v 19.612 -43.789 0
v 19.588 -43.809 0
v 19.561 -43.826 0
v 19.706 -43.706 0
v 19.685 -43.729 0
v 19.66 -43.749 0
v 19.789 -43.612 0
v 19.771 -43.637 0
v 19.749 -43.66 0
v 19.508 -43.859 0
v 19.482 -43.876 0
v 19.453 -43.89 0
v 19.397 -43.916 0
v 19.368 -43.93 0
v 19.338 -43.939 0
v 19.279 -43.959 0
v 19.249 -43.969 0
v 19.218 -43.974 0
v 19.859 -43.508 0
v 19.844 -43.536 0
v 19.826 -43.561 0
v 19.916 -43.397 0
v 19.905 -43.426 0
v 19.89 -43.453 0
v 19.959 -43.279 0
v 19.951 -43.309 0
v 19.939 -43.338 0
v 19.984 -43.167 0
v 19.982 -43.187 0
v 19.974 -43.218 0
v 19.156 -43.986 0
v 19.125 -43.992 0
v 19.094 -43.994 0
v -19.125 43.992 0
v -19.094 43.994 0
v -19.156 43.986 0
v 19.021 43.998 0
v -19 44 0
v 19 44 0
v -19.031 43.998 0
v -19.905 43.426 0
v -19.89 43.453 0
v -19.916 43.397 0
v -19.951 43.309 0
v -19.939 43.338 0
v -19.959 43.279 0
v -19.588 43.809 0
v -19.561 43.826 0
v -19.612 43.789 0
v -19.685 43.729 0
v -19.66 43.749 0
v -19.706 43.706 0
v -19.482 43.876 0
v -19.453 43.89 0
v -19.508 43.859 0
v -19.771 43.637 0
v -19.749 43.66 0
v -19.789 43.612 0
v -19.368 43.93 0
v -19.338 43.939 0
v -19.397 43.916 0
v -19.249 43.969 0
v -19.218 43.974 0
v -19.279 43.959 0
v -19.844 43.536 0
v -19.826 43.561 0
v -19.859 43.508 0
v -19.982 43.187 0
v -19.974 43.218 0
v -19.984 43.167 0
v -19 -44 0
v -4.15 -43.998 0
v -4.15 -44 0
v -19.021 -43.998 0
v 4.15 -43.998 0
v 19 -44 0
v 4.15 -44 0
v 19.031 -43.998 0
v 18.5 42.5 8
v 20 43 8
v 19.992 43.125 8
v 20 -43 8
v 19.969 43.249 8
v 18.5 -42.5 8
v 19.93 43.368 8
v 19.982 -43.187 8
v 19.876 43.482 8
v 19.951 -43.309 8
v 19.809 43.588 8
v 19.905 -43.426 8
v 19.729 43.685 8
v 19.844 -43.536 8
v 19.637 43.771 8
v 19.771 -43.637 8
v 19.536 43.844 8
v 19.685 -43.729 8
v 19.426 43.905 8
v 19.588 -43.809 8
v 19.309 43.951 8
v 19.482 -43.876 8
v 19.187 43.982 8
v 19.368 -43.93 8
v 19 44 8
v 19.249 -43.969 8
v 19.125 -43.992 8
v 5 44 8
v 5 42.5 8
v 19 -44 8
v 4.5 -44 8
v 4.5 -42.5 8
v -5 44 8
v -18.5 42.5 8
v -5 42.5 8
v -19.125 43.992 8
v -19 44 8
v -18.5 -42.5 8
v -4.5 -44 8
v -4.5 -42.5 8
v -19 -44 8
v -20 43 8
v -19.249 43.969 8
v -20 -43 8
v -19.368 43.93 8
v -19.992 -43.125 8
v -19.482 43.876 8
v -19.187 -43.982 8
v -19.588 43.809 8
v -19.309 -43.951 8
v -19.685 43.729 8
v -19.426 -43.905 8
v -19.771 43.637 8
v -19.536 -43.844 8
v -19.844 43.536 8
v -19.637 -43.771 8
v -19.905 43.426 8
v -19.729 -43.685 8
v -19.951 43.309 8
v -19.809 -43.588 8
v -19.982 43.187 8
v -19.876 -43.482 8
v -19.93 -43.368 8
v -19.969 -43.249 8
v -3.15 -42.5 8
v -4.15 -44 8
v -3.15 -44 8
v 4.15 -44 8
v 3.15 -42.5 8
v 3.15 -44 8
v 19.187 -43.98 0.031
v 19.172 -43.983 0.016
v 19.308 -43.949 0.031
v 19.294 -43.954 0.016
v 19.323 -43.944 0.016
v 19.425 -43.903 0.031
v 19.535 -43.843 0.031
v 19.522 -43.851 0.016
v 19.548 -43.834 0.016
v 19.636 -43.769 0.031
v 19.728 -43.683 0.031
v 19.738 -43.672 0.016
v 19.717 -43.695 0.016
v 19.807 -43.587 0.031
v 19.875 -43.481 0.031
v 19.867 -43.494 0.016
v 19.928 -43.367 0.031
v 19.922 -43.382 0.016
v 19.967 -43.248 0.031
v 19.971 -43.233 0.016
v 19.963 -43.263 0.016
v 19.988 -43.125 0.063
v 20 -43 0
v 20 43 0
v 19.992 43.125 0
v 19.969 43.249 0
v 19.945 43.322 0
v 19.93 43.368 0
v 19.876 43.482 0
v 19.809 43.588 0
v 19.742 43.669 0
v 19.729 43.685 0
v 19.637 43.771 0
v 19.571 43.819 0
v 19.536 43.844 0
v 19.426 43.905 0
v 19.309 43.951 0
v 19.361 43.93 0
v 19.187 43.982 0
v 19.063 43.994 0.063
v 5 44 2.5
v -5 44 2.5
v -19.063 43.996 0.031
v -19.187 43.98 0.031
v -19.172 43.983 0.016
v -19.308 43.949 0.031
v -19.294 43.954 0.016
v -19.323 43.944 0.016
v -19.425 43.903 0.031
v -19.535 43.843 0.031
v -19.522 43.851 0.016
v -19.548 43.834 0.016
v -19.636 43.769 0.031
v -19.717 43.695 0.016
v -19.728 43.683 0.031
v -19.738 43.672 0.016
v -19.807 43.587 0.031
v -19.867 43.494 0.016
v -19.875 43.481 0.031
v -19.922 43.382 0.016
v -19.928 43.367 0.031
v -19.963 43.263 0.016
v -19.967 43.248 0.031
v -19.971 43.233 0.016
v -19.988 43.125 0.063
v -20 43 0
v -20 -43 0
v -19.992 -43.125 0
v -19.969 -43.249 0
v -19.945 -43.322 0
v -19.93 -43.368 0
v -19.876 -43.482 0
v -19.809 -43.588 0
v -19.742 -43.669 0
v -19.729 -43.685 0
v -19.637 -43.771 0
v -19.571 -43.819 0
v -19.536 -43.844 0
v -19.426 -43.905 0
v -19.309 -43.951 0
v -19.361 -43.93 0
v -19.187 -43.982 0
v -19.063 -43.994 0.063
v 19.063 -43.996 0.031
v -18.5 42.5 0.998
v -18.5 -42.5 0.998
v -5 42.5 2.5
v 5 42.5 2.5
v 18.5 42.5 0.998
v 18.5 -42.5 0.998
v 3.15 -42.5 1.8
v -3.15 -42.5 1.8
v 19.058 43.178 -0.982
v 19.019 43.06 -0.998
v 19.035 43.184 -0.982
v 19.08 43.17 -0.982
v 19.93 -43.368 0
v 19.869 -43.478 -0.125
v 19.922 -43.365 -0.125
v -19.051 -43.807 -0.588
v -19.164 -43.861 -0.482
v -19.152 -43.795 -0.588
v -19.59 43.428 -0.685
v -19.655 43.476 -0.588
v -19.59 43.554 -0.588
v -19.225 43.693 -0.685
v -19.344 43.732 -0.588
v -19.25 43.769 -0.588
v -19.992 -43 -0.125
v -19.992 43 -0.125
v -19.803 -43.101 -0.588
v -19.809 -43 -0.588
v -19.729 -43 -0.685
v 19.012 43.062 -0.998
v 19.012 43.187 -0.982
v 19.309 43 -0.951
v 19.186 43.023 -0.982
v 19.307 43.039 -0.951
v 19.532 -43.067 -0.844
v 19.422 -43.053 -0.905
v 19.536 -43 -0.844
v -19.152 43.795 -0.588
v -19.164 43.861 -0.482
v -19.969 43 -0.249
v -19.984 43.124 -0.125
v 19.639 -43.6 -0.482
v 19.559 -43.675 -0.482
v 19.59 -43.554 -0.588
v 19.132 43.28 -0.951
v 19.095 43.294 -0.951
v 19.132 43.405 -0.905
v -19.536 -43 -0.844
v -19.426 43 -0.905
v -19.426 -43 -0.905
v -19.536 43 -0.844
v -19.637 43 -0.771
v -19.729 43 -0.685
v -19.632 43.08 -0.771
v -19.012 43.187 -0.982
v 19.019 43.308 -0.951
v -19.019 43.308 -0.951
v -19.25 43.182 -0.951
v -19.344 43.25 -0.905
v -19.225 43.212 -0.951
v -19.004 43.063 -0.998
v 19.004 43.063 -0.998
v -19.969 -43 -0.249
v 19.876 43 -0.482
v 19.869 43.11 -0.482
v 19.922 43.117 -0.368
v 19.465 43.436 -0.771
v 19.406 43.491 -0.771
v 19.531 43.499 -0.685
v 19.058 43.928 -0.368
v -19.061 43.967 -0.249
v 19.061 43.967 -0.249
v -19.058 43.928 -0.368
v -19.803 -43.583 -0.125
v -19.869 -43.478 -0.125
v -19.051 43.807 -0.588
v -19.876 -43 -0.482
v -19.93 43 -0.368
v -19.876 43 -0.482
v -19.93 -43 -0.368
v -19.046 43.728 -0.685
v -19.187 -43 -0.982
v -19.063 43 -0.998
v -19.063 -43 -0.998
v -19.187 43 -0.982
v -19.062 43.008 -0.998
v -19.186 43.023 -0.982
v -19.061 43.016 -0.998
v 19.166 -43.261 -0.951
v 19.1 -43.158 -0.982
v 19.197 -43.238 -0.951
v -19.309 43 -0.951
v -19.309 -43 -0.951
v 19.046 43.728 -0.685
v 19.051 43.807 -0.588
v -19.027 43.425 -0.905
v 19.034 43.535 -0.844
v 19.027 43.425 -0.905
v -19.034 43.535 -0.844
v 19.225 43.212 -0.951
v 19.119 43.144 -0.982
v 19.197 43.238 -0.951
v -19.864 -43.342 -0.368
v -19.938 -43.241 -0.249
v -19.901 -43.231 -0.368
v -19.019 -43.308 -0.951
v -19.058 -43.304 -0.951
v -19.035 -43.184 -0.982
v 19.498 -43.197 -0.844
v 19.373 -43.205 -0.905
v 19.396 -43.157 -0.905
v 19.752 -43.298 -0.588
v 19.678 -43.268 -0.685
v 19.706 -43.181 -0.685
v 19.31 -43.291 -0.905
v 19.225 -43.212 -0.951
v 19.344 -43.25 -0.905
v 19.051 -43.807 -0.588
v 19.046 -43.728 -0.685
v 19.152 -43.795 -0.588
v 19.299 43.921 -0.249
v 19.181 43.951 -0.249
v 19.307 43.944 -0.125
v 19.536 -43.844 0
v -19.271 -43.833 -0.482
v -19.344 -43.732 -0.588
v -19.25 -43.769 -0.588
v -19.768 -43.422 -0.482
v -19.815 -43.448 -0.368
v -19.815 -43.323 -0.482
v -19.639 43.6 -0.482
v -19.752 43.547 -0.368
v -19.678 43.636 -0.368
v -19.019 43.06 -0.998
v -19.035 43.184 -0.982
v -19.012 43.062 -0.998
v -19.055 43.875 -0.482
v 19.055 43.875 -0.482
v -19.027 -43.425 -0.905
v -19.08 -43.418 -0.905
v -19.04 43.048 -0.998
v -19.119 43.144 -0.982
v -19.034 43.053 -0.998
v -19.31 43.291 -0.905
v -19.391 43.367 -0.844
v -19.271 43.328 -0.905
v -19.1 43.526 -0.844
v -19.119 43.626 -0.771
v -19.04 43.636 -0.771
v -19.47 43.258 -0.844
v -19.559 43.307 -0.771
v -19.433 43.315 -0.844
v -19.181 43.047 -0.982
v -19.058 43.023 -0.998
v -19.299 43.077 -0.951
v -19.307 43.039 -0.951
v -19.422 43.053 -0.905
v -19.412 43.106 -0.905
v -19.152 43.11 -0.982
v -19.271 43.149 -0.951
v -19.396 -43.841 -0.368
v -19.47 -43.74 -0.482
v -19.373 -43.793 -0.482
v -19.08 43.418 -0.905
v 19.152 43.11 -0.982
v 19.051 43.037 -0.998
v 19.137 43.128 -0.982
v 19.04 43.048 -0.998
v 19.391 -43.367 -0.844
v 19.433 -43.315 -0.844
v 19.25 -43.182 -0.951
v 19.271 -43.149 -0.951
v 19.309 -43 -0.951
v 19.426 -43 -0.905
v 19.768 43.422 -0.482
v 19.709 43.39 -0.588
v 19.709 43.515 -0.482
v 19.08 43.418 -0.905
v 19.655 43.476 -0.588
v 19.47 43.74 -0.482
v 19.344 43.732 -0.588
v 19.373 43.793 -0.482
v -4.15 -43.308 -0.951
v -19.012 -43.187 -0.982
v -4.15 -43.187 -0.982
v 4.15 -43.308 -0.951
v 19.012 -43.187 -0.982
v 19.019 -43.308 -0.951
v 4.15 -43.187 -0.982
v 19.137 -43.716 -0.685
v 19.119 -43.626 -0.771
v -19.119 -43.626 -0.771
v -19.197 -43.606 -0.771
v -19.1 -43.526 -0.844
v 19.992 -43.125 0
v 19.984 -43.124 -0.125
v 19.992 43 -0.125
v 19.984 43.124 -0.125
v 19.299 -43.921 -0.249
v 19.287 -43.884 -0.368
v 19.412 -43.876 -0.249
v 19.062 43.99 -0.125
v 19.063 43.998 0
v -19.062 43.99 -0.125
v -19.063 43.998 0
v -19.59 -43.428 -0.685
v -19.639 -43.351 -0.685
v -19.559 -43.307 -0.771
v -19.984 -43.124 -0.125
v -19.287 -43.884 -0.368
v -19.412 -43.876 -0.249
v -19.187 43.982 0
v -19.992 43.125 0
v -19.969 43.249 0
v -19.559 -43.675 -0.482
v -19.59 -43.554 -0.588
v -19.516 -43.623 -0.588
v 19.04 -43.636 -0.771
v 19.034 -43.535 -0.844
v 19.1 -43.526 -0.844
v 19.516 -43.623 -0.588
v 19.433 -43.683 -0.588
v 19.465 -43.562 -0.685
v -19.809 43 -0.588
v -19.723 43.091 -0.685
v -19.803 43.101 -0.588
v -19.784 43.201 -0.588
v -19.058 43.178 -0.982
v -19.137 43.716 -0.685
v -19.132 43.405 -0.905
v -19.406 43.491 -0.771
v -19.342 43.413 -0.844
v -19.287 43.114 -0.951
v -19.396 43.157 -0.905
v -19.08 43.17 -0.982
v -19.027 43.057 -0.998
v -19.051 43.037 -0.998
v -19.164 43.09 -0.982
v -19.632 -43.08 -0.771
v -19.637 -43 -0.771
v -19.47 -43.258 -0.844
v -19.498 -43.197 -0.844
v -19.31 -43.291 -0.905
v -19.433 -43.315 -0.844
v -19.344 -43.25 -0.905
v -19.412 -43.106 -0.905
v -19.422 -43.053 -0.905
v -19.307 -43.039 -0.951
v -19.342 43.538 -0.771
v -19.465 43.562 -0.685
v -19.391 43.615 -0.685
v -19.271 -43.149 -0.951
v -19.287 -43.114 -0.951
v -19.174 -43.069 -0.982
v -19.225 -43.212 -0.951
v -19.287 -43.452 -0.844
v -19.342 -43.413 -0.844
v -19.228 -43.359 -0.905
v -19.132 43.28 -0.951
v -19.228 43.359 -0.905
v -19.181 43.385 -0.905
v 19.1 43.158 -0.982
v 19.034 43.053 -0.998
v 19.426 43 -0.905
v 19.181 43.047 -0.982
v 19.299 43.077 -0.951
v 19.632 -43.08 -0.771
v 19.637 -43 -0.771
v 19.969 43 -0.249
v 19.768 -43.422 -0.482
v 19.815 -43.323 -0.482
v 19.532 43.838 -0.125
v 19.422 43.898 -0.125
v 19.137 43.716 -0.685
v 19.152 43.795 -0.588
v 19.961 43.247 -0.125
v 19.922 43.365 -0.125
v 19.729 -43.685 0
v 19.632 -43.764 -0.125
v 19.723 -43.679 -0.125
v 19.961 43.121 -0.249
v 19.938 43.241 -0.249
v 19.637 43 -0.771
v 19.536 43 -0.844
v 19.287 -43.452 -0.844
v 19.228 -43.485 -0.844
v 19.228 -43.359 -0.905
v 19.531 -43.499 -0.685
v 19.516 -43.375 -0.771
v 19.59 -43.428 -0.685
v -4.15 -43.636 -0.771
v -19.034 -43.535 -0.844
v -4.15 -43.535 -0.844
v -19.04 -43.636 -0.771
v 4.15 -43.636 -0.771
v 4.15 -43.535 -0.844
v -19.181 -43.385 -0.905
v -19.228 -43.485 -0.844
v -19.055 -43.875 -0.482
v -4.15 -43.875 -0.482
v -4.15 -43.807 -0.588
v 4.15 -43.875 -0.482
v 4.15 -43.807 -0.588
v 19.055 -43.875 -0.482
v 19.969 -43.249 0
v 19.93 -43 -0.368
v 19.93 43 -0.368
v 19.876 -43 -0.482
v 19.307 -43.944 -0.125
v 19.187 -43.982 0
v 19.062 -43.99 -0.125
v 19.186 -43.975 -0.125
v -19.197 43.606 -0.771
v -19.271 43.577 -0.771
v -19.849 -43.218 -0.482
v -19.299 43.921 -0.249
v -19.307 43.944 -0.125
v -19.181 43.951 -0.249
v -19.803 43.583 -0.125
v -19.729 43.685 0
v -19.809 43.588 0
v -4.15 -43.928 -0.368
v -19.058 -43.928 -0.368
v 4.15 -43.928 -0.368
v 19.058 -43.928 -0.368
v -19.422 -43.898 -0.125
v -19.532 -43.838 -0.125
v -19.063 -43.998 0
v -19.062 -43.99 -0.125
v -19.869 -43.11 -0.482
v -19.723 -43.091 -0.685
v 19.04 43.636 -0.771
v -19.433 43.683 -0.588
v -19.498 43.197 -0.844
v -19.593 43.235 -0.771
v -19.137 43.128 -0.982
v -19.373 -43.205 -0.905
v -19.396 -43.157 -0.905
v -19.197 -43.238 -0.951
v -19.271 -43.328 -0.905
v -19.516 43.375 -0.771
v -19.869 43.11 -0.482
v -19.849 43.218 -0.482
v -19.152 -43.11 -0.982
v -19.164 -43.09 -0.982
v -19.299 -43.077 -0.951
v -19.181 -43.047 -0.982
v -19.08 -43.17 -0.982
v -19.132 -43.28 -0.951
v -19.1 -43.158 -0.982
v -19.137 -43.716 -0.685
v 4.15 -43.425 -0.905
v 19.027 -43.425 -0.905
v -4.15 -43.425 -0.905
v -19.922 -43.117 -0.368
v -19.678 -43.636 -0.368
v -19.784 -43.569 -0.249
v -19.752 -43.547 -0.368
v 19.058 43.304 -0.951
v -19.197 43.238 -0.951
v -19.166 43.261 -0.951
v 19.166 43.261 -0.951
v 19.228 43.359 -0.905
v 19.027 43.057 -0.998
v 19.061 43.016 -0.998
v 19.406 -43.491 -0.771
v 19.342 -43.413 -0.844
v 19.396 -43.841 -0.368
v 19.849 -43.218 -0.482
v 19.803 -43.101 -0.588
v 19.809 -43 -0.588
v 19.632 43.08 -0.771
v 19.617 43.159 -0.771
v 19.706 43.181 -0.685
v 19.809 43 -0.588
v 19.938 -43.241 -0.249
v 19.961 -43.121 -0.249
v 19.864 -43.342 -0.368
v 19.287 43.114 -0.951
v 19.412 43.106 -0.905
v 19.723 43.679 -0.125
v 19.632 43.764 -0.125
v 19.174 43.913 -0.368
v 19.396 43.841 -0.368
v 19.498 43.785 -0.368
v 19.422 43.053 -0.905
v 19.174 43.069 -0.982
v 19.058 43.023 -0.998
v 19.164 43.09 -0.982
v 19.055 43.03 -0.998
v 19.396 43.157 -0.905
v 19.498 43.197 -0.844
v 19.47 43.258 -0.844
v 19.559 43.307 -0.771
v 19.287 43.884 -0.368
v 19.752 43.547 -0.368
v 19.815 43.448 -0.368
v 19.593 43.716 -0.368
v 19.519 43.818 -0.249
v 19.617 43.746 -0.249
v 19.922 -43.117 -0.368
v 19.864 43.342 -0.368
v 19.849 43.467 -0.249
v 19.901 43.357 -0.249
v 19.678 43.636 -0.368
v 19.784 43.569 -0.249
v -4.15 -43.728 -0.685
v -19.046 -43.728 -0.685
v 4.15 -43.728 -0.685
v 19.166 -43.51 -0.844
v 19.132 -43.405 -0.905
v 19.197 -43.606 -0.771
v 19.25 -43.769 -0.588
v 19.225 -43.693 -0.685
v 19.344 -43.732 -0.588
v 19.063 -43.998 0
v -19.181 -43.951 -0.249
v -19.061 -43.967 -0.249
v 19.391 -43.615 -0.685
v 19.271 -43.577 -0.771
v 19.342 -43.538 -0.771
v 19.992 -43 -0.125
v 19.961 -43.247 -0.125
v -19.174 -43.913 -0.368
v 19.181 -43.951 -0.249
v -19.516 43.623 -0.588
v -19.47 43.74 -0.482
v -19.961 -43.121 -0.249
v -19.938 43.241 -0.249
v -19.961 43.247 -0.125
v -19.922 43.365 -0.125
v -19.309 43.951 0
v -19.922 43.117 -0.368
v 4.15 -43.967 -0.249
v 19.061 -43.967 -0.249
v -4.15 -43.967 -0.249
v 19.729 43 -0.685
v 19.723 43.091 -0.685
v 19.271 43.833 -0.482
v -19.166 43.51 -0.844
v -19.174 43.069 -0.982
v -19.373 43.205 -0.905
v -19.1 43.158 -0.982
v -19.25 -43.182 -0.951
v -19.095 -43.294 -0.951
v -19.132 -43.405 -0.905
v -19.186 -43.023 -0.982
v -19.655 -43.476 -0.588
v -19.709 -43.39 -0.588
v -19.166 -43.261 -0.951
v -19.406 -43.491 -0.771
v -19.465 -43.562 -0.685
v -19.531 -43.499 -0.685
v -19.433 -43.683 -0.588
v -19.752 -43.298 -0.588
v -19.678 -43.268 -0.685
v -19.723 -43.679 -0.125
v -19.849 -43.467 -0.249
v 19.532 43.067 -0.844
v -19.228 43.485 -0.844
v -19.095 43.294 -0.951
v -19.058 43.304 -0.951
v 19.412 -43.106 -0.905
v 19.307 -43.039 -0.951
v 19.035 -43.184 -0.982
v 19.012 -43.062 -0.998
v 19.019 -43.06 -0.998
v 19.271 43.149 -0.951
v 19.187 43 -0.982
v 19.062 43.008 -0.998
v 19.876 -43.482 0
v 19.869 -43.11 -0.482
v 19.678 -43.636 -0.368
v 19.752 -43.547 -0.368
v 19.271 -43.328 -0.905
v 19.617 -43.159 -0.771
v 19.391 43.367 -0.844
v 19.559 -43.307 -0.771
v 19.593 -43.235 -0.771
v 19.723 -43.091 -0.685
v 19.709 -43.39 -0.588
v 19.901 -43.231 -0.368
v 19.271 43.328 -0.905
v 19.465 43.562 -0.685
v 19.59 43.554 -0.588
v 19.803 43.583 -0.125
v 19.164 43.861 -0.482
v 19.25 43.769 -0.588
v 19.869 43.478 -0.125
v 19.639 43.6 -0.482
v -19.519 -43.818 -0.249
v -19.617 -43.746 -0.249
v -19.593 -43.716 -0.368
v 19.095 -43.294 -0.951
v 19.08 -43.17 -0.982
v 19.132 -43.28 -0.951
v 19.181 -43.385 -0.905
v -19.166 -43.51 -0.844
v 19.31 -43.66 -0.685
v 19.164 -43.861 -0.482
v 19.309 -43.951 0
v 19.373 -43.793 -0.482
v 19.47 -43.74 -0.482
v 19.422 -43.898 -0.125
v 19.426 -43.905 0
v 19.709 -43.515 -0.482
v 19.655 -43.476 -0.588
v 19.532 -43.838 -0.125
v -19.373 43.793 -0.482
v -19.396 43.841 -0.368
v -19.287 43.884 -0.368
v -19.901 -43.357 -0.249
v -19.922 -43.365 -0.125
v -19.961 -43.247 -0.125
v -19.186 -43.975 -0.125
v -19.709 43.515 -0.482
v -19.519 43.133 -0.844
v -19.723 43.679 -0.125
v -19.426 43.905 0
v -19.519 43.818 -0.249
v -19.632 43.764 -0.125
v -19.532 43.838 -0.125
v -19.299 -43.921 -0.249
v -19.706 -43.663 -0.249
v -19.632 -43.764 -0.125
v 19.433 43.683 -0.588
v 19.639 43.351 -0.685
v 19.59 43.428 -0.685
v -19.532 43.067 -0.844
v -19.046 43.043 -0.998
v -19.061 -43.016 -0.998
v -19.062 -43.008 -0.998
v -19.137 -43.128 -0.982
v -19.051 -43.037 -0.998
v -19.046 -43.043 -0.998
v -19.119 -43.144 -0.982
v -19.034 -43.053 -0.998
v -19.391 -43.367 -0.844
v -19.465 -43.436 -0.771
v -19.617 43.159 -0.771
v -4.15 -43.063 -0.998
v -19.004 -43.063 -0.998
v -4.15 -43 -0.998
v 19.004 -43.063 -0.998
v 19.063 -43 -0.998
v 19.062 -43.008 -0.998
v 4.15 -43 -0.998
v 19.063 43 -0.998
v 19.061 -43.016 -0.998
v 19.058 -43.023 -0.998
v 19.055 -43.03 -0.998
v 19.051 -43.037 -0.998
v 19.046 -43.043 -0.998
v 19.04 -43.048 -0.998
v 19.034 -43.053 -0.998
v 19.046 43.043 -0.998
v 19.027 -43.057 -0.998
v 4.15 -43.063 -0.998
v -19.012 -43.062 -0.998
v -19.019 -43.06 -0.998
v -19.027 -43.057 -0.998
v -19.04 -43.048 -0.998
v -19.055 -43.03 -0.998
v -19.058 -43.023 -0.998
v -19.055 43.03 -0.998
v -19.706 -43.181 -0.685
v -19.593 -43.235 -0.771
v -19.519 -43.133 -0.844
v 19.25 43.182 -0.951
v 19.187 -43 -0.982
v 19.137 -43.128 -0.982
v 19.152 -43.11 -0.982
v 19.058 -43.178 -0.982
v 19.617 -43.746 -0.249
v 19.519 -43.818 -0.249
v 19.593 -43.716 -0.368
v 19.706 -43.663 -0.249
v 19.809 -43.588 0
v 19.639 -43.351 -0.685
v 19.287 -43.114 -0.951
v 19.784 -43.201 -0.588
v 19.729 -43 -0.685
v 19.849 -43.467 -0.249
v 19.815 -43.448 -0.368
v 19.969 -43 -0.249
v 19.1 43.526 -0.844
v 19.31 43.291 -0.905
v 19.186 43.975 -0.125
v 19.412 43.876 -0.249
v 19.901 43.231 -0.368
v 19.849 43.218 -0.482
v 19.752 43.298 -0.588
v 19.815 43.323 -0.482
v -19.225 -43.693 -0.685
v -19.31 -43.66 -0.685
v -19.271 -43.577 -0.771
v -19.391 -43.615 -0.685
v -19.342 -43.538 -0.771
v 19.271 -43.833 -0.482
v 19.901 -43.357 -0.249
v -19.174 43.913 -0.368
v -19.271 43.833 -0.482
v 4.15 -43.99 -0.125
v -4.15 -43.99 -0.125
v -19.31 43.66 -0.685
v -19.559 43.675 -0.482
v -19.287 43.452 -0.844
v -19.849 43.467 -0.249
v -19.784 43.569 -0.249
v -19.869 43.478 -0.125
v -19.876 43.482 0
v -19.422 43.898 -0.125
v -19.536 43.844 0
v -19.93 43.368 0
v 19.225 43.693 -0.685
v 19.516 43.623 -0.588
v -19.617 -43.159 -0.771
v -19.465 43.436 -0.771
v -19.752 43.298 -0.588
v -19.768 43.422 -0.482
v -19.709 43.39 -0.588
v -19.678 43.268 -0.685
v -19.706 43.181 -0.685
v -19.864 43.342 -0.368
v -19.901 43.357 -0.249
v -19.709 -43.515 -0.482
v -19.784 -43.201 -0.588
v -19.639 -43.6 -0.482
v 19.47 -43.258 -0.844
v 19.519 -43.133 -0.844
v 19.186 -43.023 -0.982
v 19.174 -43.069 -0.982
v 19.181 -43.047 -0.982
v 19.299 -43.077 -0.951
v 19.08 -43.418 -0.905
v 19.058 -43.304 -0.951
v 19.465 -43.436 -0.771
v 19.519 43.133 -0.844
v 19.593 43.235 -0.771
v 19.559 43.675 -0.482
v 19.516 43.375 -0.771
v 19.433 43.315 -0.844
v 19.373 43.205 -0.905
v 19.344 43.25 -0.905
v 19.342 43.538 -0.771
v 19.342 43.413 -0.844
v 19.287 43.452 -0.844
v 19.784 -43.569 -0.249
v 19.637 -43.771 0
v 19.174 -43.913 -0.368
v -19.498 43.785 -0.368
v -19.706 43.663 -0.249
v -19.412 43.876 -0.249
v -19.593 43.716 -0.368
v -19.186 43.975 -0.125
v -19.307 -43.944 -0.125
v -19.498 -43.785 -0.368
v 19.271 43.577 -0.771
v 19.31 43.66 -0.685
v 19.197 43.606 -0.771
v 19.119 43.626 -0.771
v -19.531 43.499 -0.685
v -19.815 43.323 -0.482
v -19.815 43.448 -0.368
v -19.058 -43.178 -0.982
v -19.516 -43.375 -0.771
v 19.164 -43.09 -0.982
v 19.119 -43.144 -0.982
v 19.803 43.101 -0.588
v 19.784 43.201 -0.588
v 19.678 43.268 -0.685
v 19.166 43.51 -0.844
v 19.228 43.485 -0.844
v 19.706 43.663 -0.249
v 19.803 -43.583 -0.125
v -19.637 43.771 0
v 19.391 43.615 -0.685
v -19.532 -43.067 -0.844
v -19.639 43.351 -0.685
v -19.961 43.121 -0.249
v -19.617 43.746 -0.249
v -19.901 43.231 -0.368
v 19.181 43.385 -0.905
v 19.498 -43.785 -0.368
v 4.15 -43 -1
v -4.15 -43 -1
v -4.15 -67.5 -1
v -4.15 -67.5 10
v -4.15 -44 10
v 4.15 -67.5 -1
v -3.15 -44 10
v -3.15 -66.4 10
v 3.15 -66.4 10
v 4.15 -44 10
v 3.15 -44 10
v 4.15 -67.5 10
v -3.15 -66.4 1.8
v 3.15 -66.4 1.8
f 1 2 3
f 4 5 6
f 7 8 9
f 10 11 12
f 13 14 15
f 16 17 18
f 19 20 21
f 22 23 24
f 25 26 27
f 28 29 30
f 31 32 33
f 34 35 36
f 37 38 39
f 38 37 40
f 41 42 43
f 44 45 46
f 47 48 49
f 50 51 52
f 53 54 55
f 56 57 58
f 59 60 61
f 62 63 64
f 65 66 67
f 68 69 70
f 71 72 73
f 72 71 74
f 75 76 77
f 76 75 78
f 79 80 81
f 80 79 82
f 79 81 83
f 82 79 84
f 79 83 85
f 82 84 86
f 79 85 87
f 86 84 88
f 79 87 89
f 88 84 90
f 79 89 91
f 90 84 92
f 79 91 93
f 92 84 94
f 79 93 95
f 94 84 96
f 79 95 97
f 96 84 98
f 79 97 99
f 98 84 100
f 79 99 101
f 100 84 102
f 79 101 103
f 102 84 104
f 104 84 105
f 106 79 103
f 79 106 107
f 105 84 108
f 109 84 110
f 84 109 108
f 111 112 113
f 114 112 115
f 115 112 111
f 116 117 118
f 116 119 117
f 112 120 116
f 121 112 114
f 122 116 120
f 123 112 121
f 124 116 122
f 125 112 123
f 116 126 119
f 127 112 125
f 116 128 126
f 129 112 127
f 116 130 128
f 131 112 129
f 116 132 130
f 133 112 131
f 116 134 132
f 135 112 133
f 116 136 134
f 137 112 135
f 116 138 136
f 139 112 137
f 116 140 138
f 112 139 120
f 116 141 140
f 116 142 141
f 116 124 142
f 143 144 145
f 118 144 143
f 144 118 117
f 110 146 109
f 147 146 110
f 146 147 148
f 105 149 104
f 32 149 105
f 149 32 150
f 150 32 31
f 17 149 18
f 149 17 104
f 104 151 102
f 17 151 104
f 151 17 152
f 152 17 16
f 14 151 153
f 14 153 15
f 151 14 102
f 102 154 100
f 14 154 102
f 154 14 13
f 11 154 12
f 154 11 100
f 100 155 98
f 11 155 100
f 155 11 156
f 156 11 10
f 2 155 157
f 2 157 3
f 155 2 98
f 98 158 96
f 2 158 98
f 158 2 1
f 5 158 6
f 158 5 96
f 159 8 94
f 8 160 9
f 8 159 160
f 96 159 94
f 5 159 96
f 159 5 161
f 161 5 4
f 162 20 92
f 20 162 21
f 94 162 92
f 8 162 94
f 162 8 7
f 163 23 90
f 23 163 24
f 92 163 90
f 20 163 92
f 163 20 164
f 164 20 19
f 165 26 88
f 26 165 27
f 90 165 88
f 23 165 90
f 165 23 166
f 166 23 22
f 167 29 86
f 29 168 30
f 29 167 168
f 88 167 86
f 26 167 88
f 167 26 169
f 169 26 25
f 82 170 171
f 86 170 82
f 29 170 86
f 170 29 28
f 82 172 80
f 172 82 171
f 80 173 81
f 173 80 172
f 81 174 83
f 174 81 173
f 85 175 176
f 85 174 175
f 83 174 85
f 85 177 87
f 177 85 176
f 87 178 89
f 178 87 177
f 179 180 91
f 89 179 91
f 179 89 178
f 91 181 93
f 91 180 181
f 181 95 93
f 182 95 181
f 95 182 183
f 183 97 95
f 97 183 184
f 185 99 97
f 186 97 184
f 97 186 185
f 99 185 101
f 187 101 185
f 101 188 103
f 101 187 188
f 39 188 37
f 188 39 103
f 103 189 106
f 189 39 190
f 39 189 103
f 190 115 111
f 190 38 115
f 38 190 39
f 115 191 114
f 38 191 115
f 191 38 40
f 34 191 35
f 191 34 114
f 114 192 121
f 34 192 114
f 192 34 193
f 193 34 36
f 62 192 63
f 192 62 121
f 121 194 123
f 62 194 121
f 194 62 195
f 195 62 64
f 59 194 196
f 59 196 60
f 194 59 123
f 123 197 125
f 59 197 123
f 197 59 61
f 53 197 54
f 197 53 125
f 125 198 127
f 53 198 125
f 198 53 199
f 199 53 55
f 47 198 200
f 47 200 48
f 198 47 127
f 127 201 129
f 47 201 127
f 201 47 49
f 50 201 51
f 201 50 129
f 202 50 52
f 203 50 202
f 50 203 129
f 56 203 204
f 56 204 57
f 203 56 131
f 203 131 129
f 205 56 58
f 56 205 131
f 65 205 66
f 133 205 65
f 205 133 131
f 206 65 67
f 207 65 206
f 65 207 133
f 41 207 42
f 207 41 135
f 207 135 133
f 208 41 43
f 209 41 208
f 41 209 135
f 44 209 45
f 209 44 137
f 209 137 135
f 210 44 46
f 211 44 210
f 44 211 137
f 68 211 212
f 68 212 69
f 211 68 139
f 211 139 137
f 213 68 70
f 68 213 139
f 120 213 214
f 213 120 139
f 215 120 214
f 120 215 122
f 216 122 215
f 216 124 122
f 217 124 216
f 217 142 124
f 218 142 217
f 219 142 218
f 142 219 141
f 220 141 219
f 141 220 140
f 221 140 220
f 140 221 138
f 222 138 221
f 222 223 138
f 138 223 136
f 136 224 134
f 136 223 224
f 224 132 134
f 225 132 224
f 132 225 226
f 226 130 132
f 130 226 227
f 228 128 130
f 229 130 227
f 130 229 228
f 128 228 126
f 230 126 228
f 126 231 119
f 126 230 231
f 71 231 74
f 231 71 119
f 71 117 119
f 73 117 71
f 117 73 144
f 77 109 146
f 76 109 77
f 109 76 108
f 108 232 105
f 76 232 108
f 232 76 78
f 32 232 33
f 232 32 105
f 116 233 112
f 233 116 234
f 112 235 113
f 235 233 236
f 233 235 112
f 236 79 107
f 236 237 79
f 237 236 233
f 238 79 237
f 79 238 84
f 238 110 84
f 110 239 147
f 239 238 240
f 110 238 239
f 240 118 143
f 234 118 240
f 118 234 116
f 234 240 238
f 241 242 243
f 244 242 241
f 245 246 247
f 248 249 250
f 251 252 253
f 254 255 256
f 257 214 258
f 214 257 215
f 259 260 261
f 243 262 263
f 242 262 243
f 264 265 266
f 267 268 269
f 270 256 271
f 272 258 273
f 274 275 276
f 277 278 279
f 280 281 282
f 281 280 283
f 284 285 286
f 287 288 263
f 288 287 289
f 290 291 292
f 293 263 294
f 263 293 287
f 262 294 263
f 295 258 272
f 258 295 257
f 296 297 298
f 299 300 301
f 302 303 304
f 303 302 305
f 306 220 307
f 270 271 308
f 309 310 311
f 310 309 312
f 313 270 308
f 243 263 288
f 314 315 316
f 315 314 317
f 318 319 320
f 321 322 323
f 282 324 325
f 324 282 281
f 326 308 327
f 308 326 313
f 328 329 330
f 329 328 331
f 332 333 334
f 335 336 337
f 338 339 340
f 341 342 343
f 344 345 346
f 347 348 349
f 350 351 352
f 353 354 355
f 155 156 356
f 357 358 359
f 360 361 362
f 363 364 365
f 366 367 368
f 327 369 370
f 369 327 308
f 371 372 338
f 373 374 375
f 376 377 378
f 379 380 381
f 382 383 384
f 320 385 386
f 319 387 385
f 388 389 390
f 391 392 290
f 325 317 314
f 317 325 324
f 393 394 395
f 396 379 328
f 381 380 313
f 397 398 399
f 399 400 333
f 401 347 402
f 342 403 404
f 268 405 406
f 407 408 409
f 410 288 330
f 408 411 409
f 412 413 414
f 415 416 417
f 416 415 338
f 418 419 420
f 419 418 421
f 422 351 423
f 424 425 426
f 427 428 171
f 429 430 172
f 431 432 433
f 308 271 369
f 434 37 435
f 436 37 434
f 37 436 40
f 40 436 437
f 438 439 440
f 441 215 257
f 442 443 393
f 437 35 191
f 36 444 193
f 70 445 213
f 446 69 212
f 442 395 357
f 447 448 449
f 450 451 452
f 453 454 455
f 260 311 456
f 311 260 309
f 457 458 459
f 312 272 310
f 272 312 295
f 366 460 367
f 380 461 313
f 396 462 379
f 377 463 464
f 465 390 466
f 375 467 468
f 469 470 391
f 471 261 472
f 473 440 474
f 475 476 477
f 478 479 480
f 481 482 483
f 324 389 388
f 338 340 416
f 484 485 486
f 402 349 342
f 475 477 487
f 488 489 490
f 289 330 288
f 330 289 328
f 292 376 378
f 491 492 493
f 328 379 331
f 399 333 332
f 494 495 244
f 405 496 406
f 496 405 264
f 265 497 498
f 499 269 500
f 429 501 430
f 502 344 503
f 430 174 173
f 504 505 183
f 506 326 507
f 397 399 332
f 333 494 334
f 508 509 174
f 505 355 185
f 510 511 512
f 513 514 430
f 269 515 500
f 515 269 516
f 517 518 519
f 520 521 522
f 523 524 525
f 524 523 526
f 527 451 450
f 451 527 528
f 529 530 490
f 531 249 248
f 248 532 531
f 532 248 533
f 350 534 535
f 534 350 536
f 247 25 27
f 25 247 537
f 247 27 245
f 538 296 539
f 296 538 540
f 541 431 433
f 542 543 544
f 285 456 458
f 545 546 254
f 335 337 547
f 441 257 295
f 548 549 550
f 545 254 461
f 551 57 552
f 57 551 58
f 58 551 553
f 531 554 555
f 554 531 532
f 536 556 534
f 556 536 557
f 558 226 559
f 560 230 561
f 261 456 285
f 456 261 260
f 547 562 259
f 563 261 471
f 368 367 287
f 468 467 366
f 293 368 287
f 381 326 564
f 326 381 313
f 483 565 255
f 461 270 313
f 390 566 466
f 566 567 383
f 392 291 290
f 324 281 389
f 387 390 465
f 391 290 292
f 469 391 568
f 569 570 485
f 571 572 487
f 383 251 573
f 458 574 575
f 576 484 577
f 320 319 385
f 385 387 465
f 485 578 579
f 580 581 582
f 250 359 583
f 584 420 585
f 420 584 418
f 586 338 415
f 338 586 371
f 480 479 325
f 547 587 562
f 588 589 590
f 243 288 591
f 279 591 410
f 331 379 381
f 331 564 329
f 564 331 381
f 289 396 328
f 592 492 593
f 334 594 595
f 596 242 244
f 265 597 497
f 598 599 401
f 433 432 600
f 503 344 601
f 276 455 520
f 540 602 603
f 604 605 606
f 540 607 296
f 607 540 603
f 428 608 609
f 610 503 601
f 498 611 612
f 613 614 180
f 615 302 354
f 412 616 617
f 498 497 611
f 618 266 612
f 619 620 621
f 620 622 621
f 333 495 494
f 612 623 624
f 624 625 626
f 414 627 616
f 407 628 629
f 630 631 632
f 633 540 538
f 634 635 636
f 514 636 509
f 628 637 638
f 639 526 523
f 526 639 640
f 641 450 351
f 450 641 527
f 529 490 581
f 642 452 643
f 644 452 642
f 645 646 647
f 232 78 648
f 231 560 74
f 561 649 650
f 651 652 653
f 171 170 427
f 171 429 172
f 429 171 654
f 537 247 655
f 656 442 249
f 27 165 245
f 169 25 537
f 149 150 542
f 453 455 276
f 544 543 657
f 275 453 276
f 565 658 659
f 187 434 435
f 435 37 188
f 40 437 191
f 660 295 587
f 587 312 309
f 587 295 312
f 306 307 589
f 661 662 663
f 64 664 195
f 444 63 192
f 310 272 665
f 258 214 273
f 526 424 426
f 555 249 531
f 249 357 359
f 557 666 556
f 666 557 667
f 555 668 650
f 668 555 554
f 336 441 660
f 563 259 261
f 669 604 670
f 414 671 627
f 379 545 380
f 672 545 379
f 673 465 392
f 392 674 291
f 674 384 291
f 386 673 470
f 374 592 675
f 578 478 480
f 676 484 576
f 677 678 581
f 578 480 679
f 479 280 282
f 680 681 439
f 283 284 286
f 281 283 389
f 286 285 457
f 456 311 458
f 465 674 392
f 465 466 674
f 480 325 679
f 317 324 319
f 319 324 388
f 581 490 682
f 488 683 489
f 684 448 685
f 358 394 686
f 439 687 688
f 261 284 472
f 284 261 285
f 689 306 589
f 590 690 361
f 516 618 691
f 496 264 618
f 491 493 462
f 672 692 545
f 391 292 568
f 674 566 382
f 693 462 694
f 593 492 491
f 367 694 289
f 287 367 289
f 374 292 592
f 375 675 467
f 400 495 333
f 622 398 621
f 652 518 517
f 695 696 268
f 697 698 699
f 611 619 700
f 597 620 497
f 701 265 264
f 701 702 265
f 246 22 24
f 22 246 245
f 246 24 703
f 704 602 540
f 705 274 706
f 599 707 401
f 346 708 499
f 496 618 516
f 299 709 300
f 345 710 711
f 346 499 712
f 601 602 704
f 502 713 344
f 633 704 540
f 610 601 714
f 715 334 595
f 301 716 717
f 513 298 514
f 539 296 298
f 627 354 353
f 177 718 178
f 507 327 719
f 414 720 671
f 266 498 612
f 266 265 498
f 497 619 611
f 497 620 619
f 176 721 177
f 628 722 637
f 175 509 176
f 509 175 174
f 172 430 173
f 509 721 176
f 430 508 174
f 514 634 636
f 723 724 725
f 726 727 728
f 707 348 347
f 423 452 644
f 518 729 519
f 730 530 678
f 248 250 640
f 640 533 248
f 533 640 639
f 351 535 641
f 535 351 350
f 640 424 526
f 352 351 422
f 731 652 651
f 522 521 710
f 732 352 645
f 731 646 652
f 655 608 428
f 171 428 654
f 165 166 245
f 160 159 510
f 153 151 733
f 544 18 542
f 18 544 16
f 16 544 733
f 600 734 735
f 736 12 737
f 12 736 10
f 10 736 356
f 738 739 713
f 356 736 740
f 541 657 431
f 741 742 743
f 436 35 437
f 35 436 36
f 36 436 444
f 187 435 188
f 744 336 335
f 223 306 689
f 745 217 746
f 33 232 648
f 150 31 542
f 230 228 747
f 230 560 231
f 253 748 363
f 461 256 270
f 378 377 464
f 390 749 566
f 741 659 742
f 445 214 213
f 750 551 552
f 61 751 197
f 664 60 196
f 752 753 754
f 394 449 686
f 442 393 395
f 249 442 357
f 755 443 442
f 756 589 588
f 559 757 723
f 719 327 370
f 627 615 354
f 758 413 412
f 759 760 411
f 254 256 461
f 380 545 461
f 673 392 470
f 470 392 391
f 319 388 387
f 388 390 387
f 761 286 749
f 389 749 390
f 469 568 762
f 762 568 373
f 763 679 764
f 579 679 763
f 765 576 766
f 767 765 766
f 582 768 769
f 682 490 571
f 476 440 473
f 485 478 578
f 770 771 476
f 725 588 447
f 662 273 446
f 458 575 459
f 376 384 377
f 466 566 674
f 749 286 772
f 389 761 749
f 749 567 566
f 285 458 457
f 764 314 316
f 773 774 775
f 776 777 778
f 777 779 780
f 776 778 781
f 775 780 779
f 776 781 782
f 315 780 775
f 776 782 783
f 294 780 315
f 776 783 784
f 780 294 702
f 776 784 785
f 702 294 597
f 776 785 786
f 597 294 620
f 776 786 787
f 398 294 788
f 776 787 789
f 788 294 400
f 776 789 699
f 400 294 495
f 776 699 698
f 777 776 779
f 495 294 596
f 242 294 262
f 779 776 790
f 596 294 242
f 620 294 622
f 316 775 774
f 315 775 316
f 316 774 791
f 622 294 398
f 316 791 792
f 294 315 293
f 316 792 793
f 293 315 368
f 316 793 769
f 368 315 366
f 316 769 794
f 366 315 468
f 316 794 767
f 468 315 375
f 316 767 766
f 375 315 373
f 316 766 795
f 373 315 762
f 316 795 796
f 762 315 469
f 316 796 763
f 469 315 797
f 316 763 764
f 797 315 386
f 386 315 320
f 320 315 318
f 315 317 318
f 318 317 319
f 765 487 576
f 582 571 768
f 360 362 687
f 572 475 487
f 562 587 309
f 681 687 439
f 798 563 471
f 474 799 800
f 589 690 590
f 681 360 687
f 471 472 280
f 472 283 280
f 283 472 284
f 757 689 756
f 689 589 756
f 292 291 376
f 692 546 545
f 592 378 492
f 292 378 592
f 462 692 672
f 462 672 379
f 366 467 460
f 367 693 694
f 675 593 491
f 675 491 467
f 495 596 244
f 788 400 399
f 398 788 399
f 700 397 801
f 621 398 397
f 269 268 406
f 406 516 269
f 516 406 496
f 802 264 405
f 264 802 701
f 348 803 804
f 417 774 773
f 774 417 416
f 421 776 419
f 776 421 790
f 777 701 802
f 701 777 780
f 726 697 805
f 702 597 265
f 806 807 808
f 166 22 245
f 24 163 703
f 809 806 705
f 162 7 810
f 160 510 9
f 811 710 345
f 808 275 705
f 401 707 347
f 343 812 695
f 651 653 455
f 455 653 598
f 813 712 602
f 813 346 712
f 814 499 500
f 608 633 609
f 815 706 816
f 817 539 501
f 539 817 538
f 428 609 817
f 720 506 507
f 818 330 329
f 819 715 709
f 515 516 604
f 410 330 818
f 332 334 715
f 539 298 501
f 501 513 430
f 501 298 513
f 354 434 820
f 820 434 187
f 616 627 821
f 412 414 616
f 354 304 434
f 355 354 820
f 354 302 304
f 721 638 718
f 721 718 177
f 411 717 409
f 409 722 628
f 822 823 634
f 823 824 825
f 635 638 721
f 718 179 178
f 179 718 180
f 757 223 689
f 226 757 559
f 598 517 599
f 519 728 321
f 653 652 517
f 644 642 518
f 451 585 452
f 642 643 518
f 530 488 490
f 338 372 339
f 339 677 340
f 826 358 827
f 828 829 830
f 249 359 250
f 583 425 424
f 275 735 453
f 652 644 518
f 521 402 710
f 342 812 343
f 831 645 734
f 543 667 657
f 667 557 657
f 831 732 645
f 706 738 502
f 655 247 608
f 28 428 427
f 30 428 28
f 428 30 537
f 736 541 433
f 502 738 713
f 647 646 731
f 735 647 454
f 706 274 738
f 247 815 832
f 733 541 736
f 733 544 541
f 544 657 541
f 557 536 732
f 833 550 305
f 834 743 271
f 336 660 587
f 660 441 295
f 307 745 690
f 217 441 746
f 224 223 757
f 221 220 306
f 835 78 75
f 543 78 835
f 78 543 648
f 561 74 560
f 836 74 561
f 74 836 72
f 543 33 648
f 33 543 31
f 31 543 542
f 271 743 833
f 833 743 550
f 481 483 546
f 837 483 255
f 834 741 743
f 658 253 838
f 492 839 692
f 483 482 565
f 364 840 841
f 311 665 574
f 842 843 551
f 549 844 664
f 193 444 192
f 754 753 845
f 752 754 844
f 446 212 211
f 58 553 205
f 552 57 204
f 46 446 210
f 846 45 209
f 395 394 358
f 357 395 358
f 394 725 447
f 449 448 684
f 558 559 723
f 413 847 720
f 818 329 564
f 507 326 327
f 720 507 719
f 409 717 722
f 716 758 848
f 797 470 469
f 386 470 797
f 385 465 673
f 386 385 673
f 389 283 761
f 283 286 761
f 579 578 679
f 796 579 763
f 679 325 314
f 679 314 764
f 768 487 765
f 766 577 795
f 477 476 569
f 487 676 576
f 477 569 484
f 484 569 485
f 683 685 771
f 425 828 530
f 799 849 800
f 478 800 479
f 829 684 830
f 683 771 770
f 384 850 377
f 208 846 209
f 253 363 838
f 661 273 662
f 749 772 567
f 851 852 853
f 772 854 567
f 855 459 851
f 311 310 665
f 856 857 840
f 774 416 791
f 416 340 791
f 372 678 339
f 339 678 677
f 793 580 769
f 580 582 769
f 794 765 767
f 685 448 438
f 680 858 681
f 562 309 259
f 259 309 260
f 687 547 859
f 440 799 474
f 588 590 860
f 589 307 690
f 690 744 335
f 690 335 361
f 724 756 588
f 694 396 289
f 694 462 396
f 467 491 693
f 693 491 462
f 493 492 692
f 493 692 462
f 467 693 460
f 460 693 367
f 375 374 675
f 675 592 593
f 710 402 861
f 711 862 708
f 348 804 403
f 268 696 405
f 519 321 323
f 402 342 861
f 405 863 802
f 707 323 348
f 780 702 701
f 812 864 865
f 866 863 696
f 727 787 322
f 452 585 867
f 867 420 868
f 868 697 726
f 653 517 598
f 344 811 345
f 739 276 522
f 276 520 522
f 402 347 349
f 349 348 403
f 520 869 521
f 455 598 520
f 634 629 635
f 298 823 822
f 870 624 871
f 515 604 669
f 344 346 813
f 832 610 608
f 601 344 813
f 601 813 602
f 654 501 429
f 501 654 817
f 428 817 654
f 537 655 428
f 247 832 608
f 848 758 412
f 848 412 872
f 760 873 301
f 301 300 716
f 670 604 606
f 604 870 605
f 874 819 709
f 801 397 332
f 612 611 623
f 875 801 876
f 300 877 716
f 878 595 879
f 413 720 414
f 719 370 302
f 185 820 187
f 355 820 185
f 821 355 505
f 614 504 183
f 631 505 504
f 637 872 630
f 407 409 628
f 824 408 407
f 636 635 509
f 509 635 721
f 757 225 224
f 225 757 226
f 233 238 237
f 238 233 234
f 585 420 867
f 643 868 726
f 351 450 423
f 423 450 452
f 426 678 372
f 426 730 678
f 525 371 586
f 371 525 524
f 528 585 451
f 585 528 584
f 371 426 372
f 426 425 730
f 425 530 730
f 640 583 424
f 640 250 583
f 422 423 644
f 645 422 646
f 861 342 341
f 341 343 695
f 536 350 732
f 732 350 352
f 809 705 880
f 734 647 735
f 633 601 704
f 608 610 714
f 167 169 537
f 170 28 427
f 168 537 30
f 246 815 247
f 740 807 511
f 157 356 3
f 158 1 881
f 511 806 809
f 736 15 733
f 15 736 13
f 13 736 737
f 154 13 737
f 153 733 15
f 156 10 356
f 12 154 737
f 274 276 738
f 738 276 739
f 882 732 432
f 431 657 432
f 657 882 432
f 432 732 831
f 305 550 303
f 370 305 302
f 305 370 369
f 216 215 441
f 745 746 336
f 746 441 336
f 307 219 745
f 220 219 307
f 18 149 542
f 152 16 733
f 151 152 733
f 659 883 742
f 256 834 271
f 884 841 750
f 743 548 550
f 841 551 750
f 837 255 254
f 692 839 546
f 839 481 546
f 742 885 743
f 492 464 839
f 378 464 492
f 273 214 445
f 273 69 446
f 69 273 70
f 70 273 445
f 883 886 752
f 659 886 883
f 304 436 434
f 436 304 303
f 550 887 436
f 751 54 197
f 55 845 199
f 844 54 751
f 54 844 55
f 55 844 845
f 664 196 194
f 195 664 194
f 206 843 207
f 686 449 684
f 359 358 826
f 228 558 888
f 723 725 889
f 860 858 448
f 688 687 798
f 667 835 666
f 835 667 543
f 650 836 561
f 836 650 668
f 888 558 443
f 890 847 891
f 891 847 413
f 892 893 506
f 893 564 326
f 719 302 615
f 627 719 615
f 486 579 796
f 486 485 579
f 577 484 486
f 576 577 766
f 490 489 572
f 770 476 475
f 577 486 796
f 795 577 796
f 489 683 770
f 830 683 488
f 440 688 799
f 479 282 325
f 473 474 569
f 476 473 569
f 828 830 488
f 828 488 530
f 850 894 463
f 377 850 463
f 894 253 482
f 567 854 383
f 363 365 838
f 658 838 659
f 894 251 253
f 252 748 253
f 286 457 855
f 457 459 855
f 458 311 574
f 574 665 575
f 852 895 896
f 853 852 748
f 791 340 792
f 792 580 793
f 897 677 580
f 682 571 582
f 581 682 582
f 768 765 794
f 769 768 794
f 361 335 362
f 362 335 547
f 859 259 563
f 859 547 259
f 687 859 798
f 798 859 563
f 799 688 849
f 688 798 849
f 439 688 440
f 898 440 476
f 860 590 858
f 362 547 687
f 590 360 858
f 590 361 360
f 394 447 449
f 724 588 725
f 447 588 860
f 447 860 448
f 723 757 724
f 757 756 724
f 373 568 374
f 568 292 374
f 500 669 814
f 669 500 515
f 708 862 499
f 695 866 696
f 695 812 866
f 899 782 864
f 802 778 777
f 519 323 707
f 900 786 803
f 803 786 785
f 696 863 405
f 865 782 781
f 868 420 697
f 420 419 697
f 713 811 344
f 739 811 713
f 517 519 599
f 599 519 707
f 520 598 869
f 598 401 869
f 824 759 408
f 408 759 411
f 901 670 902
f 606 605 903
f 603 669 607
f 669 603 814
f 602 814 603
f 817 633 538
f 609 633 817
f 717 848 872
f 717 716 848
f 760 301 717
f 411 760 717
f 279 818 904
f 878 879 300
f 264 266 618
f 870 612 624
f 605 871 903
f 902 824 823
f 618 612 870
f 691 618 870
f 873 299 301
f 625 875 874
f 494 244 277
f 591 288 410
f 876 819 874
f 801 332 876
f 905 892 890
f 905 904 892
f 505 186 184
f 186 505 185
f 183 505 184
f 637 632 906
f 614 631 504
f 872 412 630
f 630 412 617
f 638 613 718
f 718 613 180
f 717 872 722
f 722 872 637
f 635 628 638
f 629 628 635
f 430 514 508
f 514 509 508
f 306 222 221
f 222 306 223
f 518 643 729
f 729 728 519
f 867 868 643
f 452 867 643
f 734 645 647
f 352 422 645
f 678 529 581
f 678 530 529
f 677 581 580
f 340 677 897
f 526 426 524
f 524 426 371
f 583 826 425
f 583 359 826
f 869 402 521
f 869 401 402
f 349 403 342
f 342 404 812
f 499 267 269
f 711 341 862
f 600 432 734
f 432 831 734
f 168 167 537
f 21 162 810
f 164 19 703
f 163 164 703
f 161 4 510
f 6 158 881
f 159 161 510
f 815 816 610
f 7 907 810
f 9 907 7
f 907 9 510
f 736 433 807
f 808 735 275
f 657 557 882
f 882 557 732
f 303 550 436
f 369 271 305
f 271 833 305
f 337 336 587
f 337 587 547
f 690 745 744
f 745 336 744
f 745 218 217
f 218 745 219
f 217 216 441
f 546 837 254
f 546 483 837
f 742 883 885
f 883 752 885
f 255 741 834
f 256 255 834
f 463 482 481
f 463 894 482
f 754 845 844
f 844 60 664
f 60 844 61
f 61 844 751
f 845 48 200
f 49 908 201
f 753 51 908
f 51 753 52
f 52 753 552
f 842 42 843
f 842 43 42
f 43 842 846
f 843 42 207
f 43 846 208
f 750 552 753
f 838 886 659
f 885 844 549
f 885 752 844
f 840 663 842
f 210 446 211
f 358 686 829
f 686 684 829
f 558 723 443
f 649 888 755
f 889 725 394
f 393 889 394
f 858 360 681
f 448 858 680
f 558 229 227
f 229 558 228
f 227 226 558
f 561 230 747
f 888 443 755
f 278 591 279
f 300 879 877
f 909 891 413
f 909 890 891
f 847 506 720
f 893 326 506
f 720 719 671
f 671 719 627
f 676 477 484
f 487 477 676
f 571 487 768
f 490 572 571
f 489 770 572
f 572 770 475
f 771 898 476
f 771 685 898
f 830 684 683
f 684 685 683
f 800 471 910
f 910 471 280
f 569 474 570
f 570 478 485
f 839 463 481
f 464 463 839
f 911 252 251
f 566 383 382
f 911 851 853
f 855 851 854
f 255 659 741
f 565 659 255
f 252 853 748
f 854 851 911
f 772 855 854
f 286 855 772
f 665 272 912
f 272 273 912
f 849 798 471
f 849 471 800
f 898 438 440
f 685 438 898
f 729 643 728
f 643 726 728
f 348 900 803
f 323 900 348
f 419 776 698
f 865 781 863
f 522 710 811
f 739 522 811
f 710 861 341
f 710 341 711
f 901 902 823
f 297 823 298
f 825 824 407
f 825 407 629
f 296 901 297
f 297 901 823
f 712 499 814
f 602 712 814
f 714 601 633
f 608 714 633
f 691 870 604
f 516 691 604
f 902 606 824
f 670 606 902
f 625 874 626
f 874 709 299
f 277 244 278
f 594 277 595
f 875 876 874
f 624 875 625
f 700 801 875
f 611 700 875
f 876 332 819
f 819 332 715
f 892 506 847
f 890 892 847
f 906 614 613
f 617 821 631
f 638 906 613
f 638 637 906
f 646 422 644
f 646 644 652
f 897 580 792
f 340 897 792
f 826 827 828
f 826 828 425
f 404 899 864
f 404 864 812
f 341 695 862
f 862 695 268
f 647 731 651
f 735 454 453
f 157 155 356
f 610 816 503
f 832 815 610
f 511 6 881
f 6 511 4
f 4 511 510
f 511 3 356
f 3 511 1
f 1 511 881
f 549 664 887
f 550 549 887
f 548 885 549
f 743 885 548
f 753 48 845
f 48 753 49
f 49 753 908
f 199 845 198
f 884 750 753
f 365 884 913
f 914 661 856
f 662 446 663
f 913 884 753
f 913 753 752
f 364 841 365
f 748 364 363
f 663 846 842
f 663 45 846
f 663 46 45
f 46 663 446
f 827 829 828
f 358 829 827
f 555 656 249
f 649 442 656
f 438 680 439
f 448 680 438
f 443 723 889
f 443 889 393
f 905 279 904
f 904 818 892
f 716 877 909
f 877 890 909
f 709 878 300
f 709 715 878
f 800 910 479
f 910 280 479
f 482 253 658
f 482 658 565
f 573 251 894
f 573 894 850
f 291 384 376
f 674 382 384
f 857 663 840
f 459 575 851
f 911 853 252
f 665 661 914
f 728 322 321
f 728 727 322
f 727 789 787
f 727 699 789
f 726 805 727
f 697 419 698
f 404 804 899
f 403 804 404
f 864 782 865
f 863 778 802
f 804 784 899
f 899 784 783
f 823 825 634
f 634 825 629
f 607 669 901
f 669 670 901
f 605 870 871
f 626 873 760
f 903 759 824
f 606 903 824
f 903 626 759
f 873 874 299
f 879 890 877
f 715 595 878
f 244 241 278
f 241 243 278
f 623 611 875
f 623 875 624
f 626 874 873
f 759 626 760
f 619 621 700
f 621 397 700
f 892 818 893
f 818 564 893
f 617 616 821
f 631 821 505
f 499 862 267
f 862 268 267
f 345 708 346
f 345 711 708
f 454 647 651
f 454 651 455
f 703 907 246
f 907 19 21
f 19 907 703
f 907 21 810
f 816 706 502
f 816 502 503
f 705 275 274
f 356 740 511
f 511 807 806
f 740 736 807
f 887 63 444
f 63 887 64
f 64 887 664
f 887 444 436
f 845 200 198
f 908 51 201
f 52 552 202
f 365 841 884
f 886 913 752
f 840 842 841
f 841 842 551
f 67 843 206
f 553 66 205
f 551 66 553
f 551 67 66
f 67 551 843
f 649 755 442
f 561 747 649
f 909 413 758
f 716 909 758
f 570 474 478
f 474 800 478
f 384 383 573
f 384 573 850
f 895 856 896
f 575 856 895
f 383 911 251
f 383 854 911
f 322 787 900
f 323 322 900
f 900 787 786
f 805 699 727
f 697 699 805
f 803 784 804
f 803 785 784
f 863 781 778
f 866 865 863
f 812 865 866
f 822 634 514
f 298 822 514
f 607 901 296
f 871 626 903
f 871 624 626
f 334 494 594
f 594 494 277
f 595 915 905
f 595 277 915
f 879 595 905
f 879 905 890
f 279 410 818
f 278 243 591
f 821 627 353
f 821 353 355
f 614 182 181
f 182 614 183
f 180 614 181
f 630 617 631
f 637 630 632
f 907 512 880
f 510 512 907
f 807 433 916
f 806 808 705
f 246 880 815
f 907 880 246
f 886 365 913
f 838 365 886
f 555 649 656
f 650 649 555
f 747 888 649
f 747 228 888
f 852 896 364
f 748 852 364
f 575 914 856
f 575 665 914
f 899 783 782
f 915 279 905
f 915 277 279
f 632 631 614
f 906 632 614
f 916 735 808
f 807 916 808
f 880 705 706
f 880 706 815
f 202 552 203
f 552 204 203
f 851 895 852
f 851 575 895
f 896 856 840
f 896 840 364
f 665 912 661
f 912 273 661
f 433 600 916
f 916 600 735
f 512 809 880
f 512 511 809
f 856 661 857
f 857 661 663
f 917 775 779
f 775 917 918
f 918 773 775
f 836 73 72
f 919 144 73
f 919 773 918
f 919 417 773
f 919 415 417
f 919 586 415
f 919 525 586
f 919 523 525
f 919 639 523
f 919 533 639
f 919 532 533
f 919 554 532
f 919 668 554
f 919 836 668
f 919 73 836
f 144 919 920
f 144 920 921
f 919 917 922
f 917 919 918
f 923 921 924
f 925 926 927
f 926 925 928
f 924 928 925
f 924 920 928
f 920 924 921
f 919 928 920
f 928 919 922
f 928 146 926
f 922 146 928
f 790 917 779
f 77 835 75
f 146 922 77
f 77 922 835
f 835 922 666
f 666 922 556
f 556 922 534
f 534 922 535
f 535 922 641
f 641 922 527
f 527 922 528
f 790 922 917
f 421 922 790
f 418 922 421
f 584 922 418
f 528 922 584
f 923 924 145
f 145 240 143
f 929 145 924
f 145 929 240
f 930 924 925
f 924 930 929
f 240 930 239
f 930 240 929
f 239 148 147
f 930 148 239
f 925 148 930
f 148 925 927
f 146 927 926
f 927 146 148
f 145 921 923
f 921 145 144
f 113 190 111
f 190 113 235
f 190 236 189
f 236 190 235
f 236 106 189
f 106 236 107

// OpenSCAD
$fn=50;
BOX_W = 38; // Box Width
BOX_L = 86;// Box Length
BOX_H = 8.0; // Box Height
CORNER_RADIUS = 1.0; // Radius of corners
WALL = 1.0;// Wall Thickness

MIC_OUTSIDE_WIDTH=8.3;
MIC_OUTSIDE_HEIGHT=11.0;
MIC_INSIDE_WIDTH=6.3;
MIC_LENGTH=24.5;

CON_OUTSIDE=5;
CON_INSIDE=4;
CON_LENGTH=3;

MIC_OFFSET_X = 0;
MIC_OFFSET_Y = -25.0;
MIC_OFFSET_Z = -0.5;

VENT_OFFSET = -3.5;
VENT_L = 18.0;
VENT_R = -20.5;

module vent(x, y, vent_offset) {
    translate([x, y, BOX_H + vent_offset]) {
        rotate([90, 0, 90]) {
            #linear_extrude(2.5) square([6, 8], center=true);
        }
    }
}

difference() {
    union() {
        linear_extrude( BOX_H )
        difference(){
            offset(r=CORNER_RADIUS) square( [BOX_W, BOX_L], center=true );
            offset(r= CORNER_RADIUS - WALL) square([BOX_W-WALL, BOX_L-WALL], center=true );
        };

        coordinates = [ [0,0],[0,BOX_L],[BOX_W,BOX_L],[BOX_W,0] ];

        translate ( [-BOX_W/2, -BOX_L/2] )
            hull()
            for (i = coordinates)
            translate(i) sphere(CORNER_RADIUS);
            
        translate([MIC_OFFSET_X, MIC_OFFSET_Y, MIC_OFFSET_Z]){
            // mic box
            translate([0,-18.0,BOX_H-3])
            rotate([90,0,0])
            linear_extrude(MIC_LENGTH)square([MIC_OUTSIDE_WIDTH,MIC_OUTSIDE_HEIGHT], center=true);
        }
    }
    translate([MIC_OFFSET_X, MIC_OFFSET_Y, MIC_OFFSET_Z]){
        // inside mic channel
        translate([0,-13.8,BOX_H-0.2]) // inside
        rotate([90,0,0])
        linear_extrude(MIC_LENGTH+3.1) square([MIC_INSIDE_WIDTH,MIC_OUTSIDE_HEIGHT], center=true); 
        
        // mic lid clearance at mic box opening
        translate([0,-17,BOX_H+1.60])
        rotate([90,0,0])
        linear_extrude(2.0) square([9,2.2], center=true);   
        
    }
    // cable exit
    translate([0,44.3,BOX_H-2.5])
    rotate([90,0,0])
    linear_extrude(2.0) square([10,6], center=true);

    /*
    // gas sensor vents
    vent(VENT_L, 29.0, VENT_OFFSET);
    vent(VENT_L, 21.0, VENT_OFFSET);
    vent(VENT_L, 13.0, VENT_OFFSET);
    vent(VENT_L, 5.0, VENT_OFFSET);
    vent(VENT_L, -3.0, VENT_OFFSET);
    vent(VENT_L, -11.0, VENT_OFFSET);
    
    vent(VENT_R, 29.0, VENT_OFFSET);
    vent(VENT_R, 21.0, VENT_OFFSET);
    vent(VENT_R, 13.0, VENT_OFFSET);
    vent(VENT_R, 5.0, VENT_OFFSET);
    vent(VENT_R, -3.0, VENT_OFFSET);
    vent(VENT_R, -11.0, VENT_OFFSET);    
    */
}
